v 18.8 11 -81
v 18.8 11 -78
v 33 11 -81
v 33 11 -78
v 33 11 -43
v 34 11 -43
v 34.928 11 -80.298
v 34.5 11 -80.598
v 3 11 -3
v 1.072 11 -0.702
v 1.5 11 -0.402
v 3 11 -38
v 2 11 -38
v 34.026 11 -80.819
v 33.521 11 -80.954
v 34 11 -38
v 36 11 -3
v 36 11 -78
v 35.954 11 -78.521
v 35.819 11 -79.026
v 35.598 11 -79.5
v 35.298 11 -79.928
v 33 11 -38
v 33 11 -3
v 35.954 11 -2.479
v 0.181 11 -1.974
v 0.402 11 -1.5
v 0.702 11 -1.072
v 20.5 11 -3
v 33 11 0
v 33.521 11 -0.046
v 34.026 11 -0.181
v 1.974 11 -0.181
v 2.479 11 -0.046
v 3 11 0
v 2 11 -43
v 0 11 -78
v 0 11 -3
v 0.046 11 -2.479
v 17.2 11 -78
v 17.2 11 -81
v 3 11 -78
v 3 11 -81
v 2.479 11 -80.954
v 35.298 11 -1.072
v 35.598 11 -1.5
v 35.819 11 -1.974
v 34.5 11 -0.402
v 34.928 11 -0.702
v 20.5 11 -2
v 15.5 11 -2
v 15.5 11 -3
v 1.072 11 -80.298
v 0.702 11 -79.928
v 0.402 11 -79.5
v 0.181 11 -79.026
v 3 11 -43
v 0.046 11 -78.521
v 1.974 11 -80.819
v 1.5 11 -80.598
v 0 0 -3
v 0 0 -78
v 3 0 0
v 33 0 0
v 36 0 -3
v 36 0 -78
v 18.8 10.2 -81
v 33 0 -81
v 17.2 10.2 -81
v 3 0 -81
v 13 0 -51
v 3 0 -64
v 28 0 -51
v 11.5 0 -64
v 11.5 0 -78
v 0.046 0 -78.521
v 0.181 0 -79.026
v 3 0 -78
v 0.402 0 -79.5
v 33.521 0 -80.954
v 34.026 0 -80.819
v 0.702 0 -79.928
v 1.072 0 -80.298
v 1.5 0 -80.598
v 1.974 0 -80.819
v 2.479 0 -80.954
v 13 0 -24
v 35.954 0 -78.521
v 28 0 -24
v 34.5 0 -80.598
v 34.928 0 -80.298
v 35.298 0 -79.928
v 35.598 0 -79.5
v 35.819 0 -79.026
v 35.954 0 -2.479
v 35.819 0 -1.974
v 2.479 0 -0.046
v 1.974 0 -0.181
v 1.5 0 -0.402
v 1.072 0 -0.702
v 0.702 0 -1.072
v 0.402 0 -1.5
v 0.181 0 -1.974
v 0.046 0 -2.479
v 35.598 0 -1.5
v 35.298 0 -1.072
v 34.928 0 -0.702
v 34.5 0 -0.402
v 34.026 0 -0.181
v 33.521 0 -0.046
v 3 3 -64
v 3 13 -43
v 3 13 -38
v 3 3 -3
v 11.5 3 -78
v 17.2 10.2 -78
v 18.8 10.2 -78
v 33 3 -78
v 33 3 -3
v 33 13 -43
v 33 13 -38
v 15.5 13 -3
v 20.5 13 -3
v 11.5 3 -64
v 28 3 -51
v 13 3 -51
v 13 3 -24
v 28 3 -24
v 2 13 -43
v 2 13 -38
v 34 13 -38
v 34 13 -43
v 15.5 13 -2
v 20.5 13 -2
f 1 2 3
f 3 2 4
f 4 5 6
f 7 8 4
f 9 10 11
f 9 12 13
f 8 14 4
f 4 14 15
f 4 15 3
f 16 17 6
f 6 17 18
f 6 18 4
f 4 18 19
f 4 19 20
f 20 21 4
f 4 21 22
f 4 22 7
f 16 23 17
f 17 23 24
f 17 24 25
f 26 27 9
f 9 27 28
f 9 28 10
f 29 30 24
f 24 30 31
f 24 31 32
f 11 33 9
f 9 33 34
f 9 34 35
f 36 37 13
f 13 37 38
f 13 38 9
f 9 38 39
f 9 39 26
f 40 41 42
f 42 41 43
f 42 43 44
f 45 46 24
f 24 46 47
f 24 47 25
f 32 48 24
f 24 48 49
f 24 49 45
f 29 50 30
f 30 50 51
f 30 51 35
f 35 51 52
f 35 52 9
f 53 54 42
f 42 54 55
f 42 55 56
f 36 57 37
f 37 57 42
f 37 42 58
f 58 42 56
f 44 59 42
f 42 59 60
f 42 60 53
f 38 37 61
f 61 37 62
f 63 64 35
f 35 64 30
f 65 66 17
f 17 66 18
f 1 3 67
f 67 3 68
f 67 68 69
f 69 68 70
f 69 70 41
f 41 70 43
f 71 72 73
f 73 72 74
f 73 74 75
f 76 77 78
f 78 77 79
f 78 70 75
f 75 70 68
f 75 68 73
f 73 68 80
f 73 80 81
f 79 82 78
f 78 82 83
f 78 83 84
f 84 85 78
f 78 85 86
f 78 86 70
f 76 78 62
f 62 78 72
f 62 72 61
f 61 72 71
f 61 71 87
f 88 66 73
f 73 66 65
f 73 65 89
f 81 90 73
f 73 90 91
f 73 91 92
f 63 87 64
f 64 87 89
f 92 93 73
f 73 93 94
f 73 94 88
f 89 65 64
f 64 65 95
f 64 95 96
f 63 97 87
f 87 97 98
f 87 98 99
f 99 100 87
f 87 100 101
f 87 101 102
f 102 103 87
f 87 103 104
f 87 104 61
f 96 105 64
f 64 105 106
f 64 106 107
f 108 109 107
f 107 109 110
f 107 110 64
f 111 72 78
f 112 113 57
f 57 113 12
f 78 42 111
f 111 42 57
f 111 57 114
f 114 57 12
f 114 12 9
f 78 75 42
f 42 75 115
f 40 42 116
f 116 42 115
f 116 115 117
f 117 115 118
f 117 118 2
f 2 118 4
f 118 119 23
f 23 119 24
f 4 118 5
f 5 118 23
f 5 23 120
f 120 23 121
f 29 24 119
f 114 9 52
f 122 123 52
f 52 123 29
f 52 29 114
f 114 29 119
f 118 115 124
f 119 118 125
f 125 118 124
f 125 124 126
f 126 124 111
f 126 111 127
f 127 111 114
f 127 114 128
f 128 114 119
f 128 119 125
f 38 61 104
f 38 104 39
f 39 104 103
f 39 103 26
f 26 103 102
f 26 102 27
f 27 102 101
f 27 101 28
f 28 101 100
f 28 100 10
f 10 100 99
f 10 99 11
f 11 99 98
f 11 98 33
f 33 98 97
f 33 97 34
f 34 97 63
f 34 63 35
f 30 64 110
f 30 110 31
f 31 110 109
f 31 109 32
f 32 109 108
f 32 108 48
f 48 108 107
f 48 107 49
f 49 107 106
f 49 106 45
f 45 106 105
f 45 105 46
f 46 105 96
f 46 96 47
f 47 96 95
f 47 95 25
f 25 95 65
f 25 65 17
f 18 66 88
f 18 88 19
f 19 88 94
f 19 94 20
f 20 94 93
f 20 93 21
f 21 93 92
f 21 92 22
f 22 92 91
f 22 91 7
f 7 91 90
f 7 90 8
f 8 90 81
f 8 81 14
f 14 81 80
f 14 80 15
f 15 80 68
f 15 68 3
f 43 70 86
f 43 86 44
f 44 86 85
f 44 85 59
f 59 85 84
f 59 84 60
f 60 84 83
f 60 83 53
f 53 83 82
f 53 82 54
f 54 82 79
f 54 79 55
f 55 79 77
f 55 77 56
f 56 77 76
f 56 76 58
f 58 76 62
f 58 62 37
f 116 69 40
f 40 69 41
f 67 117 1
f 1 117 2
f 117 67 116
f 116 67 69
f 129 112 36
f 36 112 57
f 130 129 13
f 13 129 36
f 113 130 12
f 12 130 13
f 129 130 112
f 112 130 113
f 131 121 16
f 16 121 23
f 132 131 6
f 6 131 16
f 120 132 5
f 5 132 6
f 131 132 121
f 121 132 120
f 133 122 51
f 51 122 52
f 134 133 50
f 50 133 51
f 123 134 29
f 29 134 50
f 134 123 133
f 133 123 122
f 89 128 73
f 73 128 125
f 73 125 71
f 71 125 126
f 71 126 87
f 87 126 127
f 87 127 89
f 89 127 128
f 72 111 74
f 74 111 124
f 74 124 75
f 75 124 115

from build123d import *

# Parameters (mm, degrees)
SKETCH1_W           = 36
SKETCH1_H           = 81
BOSS_EXTRUDE1_DEPTH = 11
SKETCH2_W           = 30
SKETCH2_H           = 75
CUT_EXTRUDE1_DEPTH  = 8
FILLET1_R           = 3
SKETCH3_W           = 1.6
SKETCH3_H           = 3
CUT_EXTRUDE2_DEPTH  = 0.8
SKETCH4_W           = 1
SKETCH4_H           = 5
SKETCH4_W_2         = 5
SKETCH4_H_2         = 1
BOSS_EXTRUDE2_DEPTH = 2
SKETCH5_W           = 8.5
SKETCH5_H           = 14
SKETCH5_W_2         = 15
SKETCH5_H_2         = 27
CUT_EXTRUDE4_DEPTH  = 8


with BuildPart() as part:
    # Sketch1 → Boss-Extrude1 (new body)
    with BuildSketch(Plane(origin=(0, 0, 0), x_dir=(1, 0, 0), z_dir=(0, 1, 0))):
        with Locations((18, 40.5)):
            Rectangle(SKETCH1_W, SKETCH1_H)
    extrude(amount=BOSS_EXTRUDE1_DEPTH)

    # Sketch2 → Cut-Extrude1 (cut)
    with BuildSketch(Plane(origin=(0, 11, 0), x_dir=(1, 0, 0), z_dir=(0, 1, 0))):
        with Locations((18, 40.5)):
            Rectangle(SKETCH2_W, SKETCH2_H)
    extrude(amount=-CUT_EXTRUDE1_DEPTH, mode=Mode.SUBTRACT)

    # Fillet1
    fillet1_edges = [part.edges().sort_by_distance(p)[0] for p in [
        (0, 5.5, -81),
        (36, 5.5, -81),
        (36, 5.5, 0),
        (0, 5.5, 0),
    ]]
    fillet(fillet1_edges, radius=FILLET1_R)

    # Sketch3 → Cut-Extrude2 (cut)
    with BuildSketch(Plane(origin=(0, 11, 0), x_dir=(1, 0, 0), z_dir=(0, 1, 0))):
        with Locations((18, 79.5)):
            Rectangle(SKETCH3_W, SKETCH3_H)
    extrude(amount=-CUT_EXTRUDE2_DEPTH, mode=Mode.SUBTRACT)

    # Sketch4 → Boss-Extrude2 (add)
    with BuildSketch(Plane(origin=(0, 11, 0), x_dir=(1, 0, 0), z_dir=(0, 1, 0))):
        with Locations((2.5, 40.5)):
            Rectangle(SKETCH4_W, SKETCH4_H)
        with Locations((33.5, 40.5)):
            Rectangle(SKETCH4_W, SKETCH4_H)
        with Locations((18, 2.5)):
            Rectangle(SKETCH4_W_2, SKETCH4_H_2)
    extrude(amount=BOSS_EXTRUDE2_DEPTH)

    # Sketch5 → Cut-Extrude4 (cut)
    with BuildSketch(Plane.XZ):
        with Locations((7.25, -71)):
            Rectangle(SKETCH5_W, SKETCH5_H)
        with Locations((20.5, -37.5)):
            Rectangle(SKETCH5_W_2, SKETCH5_H_2)
    extrude(amount=-CUT_EXTRUDE4_DEPTH, mode=Mode.SUBTRACT)


solid = part.part
